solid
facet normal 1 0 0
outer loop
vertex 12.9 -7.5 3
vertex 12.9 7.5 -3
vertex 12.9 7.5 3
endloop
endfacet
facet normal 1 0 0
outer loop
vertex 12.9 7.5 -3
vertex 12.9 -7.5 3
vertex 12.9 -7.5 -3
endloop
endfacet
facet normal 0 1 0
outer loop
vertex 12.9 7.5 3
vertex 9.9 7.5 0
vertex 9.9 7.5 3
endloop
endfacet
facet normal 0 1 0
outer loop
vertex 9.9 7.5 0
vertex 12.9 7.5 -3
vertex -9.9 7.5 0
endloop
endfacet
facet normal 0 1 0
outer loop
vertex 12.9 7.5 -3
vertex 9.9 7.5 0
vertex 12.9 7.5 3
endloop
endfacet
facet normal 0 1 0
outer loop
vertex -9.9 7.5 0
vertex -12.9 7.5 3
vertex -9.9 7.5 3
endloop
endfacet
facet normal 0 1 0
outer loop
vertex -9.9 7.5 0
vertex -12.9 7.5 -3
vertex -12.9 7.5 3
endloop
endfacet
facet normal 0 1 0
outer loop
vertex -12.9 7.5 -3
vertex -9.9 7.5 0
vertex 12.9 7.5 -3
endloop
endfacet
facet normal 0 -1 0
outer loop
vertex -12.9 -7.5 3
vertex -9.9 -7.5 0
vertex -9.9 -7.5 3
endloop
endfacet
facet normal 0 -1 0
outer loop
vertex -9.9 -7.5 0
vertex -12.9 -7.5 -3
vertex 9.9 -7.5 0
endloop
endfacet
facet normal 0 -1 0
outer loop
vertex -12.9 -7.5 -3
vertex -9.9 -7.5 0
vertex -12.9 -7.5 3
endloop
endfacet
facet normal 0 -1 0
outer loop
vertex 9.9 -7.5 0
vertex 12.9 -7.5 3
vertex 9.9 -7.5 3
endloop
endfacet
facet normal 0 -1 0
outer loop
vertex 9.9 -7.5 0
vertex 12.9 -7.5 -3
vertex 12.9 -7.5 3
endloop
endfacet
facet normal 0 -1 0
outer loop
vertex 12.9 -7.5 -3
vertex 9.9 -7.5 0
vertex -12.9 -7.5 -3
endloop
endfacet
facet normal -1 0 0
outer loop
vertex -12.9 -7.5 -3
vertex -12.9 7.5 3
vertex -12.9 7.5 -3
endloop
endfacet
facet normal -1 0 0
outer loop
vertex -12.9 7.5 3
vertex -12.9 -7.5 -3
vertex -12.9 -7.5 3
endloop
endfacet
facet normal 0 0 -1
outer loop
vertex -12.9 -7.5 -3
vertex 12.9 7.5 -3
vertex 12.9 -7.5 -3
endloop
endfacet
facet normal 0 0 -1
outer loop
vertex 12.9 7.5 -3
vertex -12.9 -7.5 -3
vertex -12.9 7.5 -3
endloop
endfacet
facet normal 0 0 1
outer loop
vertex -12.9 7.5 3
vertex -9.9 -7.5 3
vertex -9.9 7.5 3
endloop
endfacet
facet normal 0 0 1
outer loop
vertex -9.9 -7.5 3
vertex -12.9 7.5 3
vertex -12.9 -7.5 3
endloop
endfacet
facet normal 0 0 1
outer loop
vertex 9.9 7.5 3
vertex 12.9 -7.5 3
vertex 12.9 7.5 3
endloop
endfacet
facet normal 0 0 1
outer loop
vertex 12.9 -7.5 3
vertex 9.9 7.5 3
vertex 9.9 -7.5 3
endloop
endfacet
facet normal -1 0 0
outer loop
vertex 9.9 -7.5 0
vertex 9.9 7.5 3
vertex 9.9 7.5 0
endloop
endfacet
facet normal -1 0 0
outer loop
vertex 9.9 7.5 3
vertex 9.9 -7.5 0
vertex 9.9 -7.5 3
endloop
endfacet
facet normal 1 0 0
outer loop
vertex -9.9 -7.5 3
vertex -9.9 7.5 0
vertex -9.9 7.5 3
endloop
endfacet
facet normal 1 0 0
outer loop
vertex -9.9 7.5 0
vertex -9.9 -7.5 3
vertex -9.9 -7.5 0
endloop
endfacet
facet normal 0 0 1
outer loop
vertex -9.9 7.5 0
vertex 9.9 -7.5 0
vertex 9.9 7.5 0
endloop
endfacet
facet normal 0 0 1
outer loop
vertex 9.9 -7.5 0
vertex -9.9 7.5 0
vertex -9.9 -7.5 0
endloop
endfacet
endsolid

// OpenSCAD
// file: meta.scad
deviceFudge=0.5;//mm, fudge factor to account for printing inaccuracy, shrinkage
PCBThickness=1.6; //mm
pinRecepticalTop=5.5;//mm above pcb that the pin receptical extends
pinsHeight=pinRecepticalTop+4.2+2;//mm above pcb, fully extended
maxSubstrateThickness=3;//mm
wallT=3;//mm, wall thickness
PCBShelfW=0.6;//mm, the pcb sits on this
belowPBC=1;//mm extension below PCB
crownFraction=0.55;//fraction of each side length to subtract to make extension corners

capT = 5; //mm cap thickness

solidHeight=pinsHeight;//mm above pcb for solid wall
crownHeight=maxSubstrateThickness+0.5;//mm, corners extension above pin ends
totalHeight=belowPBC+PCBThickness+solidHeight+crownHeight;

module base ( xyDev ) {
    vDeviceDim=xyDev+deviceFudge;
    xyLen=vDeviceDim+wallT*2;
    difference(){
        cube([xyLen,xyLen,totalHeight],center = true);
        difference(){
            translate([0,0,belowPBC]) cube([vDeviceDim,vDeviceDim,totalHeight],center = true);
            chunk_width = 4;
            chunk_outdent = 0.4;
            chunk_height = 0.5;
            //these parts clip in the PCB
            translate([vDeviceDim/2-chunk_outdent,-chunk_width/2,-totalHeight/2+belowPBC+PCBThickness]) cube([xyLen,chunk_width,chunk_height],center = false);
            rotate([0,0,90]) translate([vDeviceDim/2-chunk_outdent,-chunk_width/2,-totalHeight/2+belowPBC+PCBThickness]) cube([xyLen,chunk_width,chunk_height],center = false);
            rotate([0,0,180]) translate([vDeviceDim/2-chunk_outdent,-chunk_width/2,-totalHeight/2+belowPBC+PCBThickness]) cube([xyLen,chunk_width,chunk_height],center = false);
            rotate([0,0,270]) translate([vDeviceDim/2-chunk_outdent,-chunk_width/2,-totalHeight/2+belowPBC+PCBThickness]) cube([xyLen,chunk_width,chunk_height],center = false);
            
        }
        cube([vDeviceDim-2*PCBShelfW,vDeviceDim-2*PCBShelfW,totalHeight+1],center = true);
        
        translate([0,xyLen/2,totalHeight/2+(crownHeight+1)/2-crownHeight]) cube([xyLen*crownFraction,xyLen,crownHeight+1],center = true);
        rotate([0,0,180]) translate([-xyLen*crownFraction/2,-xyLen/2,totalHeight/2-crownHeight]) rotate([0,90,0])  linear_extrude(height=xyLen*crownFraction) polygon([[0,0],[0,wallT],[(pinsHeight-pinRecepticalTop),wallT]]);
        
        rotate([0,0,90]) translate([0,xyLen/2,totalHeight/2+(crownHeight+1)/2-crownHeight]) cube([xyLen*crownFraction,xyLen,crownHeight+1],center = true);
        rotate([0,0,270]) translate([-xyLen*crownFraction/2,-xyLen/2,totalHeight/2-crownHeight]) rotate([0,90,0])  linear_extrude(height=xyLen*crownFraction) polygon([[0,0],[0,wallT],[(pinsHeight-pinRecepticalTop),wallT]]);
        
        rotate([0,0,180]) translate([0,xyLen/2,totalHeight/2+(crownHeight+1)/2-crownHeight]) cube([xyLen*crownFraction,xyLen,crownHeight+1],center = true);
        translate([-xyLen*crownFraction/2,-xyLen/2,totalHeight/2-crownHeight]) rotate([0,90,0])  linear_extrude(height=xyLen*crownFraction) polygon([[0,0],[0,wallT],[(pinsHeight-pinRecepticalTop),wallT]]);
        
        rotate([0,0,270]) translate([0,xyLen/2,totalHeight/2+(crownHeight+1)/2-crownHeight]) cube([xyLen*crownFraction,xyLen,crownHeight+1],center = true);
        rotate([0,0,90]) translate([-xyLen*crownFraction/2,-xyLen/2,totalHeight/2-crownHeight]) rotate([0,90,0])  linear_extrude(height=xyLen*crownFraction) polygon([[0,0],[0,wallT],[(pinsHeight-pinRecepticalTop),wallT]]);
    }
}
// main file
include <meta.scad>;

innerClipLength = totalHeight-crownHeight+capT+deviceFudge;

module clip ( ) {
    
    clipLength=15;
    clipThickness=3;

    rotate([-90,0,0])
    difference(){
        cube([innerClipLength+2*clipThickness,clipThickness+wallT,clipLength],center=true);
        translate([0,-clipThickness,0]) cube([innerClipLength,clipThickness+wallT,clipLength],center=true);
    }
}
clip ( );
